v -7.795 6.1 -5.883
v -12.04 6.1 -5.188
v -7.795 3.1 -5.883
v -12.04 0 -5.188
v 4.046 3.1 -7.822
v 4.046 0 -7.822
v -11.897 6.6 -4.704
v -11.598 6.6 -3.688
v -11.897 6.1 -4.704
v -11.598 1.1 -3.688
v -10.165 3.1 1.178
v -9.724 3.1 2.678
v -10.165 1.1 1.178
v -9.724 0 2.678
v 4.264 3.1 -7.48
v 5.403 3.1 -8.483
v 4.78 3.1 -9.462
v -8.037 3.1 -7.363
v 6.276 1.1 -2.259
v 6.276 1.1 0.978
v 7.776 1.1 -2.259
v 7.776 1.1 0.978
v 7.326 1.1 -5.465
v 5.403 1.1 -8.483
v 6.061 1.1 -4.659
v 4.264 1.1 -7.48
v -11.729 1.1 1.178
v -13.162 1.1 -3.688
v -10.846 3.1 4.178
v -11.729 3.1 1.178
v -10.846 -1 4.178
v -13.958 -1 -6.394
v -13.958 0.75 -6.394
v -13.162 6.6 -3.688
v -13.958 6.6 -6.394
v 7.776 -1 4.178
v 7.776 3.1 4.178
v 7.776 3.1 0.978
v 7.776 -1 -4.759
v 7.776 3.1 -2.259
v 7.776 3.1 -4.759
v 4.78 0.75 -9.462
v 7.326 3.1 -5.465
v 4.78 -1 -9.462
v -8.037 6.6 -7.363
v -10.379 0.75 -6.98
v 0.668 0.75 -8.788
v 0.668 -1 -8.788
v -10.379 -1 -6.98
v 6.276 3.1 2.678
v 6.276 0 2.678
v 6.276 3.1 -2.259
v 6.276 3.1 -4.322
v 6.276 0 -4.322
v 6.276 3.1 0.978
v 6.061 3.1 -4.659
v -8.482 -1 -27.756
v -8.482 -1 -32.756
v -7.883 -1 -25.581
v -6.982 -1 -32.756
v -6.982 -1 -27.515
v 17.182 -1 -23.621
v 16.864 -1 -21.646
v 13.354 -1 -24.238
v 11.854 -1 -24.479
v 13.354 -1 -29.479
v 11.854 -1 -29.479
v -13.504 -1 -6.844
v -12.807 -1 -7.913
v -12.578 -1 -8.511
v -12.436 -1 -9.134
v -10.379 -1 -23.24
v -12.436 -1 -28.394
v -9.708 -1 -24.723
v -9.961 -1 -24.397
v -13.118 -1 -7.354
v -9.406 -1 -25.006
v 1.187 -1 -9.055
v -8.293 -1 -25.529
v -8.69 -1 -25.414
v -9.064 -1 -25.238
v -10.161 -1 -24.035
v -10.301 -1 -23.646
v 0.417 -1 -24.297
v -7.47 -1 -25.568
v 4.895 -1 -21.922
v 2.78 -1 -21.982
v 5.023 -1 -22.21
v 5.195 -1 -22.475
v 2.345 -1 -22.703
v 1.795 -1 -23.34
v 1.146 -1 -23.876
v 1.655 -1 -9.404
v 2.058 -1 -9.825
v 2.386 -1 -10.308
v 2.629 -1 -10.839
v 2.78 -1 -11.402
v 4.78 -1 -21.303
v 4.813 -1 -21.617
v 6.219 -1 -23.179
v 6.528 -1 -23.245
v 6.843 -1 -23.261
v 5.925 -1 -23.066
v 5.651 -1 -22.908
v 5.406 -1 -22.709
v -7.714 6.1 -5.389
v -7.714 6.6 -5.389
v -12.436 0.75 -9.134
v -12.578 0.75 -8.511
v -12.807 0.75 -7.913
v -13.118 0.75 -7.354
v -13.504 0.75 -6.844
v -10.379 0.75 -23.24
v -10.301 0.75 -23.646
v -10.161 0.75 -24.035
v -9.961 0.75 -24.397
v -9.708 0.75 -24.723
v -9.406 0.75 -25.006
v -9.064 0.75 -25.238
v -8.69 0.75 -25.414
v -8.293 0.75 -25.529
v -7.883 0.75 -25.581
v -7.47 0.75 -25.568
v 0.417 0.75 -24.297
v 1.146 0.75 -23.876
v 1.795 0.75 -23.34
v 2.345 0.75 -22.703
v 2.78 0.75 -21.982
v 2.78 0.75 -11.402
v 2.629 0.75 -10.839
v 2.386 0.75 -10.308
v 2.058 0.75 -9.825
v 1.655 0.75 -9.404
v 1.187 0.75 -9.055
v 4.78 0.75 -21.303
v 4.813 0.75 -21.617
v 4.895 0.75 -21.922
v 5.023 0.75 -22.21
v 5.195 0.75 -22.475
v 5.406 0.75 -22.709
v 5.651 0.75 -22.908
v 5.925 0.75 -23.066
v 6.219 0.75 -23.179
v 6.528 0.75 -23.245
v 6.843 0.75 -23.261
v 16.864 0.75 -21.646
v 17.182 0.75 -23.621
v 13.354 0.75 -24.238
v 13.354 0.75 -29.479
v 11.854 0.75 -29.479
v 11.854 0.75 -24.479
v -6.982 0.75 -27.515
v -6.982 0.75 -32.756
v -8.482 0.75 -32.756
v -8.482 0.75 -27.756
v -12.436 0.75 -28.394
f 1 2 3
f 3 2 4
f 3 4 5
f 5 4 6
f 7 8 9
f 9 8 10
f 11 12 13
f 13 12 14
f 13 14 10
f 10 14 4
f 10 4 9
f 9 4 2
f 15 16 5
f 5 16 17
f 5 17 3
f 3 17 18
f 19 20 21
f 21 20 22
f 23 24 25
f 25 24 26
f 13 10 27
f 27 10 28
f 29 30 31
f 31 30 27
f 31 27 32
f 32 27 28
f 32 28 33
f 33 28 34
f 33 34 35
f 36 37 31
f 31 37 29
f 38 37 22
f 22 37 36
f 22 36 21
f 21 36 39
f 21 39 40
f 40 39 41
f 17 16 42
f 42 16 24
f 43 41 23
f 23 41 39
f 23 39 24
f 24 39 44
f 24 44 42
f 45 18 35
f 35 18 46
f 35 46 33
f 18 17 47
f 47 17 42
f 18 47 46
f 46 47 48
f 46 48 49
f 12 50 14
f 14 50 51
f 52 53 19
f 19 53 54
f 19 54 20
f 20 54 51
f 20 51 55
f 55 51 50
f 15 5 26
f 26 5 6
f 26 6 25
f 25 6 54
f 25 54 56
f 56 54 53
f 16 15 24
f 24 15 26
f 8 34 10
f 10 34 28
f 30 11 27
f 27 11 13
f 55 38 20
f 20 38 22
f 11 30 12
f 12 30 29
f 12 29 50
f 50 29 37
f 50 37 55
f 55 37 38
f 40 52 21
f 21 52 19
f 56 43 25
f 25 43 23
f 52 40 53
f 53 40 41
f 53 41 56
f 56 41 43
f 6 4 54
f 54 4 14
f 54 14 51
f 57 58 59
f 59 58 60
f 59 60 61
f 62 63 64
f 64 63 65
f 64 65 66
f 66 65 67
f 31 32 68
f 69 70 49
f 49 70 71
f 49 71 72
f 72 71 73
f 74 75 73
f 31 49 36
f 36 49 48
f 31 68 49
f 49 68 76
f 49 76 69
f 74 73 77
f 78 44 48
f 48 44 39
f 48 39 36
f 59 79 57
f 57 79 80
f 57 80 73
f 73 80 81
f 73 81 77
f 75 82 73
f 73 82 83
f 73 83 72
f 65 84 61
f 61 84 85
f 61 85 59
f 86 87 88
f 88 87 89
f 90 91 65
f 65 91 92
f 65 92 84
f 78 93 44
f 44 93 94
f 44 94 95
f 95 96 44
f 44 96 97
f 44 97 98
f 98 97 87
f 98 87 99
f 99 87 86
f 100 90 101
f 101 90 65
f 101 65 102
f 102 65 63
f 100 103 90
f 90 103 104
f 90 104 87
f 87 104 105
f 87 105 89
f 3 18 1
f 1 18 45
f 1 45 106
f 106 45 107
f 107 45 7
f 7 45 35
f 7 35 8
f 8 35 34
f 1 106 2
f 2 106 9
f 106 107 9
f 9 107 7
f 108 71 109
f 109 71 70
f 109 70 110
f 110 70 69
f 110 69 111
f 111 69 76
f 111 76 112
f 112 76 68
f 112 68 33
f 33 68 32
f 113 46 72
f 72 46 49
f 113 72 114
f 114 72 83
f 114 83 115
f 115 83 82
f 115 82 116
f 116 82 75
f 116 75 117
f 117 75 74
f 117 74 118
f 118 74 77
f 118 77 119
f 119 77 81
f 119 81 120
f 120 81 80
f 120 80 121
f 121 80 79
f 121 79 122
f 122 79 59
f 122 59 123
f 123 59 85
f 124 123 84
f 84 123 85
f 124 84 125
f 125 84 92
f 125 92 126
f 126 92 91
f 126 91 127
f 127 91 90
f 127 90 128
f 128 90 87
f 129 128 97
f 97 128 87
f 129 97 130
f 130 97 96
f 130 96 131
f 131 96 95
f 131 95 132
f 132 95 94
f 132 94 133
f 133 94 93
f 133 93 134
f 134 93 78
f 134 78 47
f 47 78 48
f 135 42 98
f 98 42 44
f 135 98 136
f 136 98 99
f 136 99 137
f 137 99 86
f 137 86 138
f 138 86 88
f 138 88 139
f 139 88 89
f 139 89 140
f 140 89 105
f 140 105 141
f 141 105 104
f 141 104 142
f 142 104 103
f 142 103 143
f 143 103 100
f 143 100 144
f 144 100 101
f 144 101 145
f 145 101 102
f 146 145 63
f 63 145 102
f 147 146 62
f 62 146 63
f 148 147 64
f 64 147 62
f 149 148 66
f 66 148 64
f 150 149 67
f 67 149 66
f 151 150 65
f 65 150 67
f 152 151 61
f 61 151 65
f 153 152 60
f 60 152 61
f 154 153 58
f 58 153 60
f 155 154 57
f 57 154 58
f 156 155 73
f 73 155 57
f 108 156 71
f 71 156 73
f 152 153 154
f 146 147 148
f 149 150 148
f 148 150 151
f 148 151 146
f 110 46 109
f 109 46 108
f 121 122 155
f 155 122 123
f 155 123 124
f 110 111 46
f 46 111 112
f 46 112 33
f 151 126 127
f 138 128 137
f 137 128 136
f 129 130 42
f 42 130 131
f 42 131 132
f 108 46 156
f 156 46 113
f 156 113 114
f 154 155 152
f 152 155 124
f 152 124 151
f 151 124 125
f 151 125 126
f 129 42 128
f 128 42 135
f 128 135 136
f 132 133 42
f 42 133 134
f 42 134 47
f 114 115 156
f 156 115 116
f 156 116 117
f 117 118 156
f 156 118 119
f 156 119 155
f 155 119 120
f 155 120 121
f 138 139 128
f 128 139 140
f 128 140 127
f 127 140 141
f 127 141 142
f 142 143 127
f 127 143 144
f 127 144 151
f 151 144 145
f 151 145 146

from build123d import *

# Parameters (mm, degrees)
BOSS_EXTRUDE4_DEPTH  = 1.1
BOSS_EXTRUDE6_DEPTH  = 2
BOSS_EXTRUDE8_DEPTH  = 1
BOSS_EXTRUDE9_DEPTH  = 3.5
SKETCH13_W           = 4.301422626
SKETCH13_H           = 0.5
BOSS_EXTRUDE10_DEPTH = 0.5
BOSS_EXTRUDE11_DEPTH = 1.75


with BuildPart() as part:
    # Sketch1 → Boss-Extrude4 (new body)
    with BuildSketch(Plane(origin=(0, 0, 0), x_dir=(1, 0, 0), z_dir=(0, 1, 0))):
        Polygon((-13.958157374, 6.393603317), (4.779918737, 9.461645161), (7.776189987, 4.758788138), (7.776189987, -4.178449178), (-10.845876326, -4.178449178), align=None)
        Polygon((-12.039528162, 5.187772879), (-9.723810013, -2.678449178), (6.276189987, -2.678449178), (6.276189987, 4.321550822), (4.046279675, 7.821550822), align=None, mode=Mode.SUBTRACT)
    extrude(amount=BOSS_EXTRUDE4_DEPTH)

    # Sketch4 → Boss-Extrude6 (add)
    with BuildSketch(Plane(origin=(0, 1.1, 0), x_dir=(1, 0, 0), z_dir=(0, 1, 0))):
        Polygon((4.263894856, 7.479988594), (5.40328595, 8.483226777), (4.779918737, 9.461645161), (-13.958157374, 6.393603317), (-13.161594474, 3.687772879), (-11.597946778, 3.687772879), (-12.039528162, 5.187772879), (4.046279675, 7.821550822), align=None)
        Polygon((6.276189987, -0.978449178), (7.776189987, -0.978449178), (7.776189987, -4.178449178), (-10.845876326, -4.178449178), (-11.729039094, -1.178449178), (-10.165391397, -1.178449178), (-9.723810013, -2.678449178), (6.276189987, -2.678449178), align=None)
        Polygon((6.276189987, 2.258788138), (6.276189987, 4.321550822), (6.061258872, 4.658900219), (7.326319113, 5.464891898), (7.776189987, 4.758788138), (7.776189987, 2.258788138), align=None)
    extrude(amount=BOSS_EXTRUDE6_DEPTH)

    # Sketch8 → Boss-Extrude8 (add)
    with BuildSketch(Plane.XZ):
        Polygon((4.779918737, -9.461645161), (-13.958157374, -6.393603317), (-10.845876326, 4.178449178), (7.776189987, 4.178449178), (7.776189987, -4.758788138), align=None)
    extrude(amount=BOSS_EXTRUDE8_DEPTH)

    # Sketch12 → Boss-Extrude9 (add)
    with BuildSketch(Plane(origin=(0, 3.1, 0), x_dir=(1, 0, 0), z_dir=(0, 1, 0))):
        Polygon((-13.958157374, 6.393603317), (-8.037001115, 7.36309213), (-7.794628912, 5.882803065), (-12.039528162, 5.187772879), (-11.597946778, 3.687772879), (-13.161594474, 3.687772879), align=None)
    extrude(amount=BOSS_EXTRUDE9_DEPTH)

    # Sketch13 → Boss-Extrude10 (add)
    with BuildSketch(Plane(origin=(-1.141567738, 0, -6.972128883), x_dir=(0.9868593764655612, 0, -0.16158146886943345), z_dir=(0.16158146886943345, 0, 0.9868593764655612))):
        with Locations((-8.89236198, 6.35)):
            Rectangle(SKETCH13_W, SKETCH13_H)
    extrude(amount=BOSS_EXTRUDE10_DEPTH)

    # Sketch14 → Boss-Extrude11 (add)
    with BuildSketch(Plane.XZ.offset(1)):
        with BuildLine():
            Line((-12.435718696, -28.393603317), (-8.481738038, -27.756425594))
            Line((-8.481738038, -27.756425594), (-8.481738038, -32.756425594))
            Line((-8.481738038, -32.756425594), (-6.981738038, -32.756425594))
            Line((-6.981738038, -32.756425594), (-6.981738038, -27.514702969))
            Line((-6.981738038, -27.514702969), (11.853577786, -24.479421647))
            Line((11.853577786, -24.479421647), (11.853577786, -29.479421647))
            Line((11.853577786, -29.479421647), (13.353577786, -29.479421647))
            Line((13.353577786, -29.479421647), (13.353577786, -24.237699022))
            Line((13.353577786, -24.237699022), (17.18217535, -23.620726586))
            Line((17.18217535, -23.620726586), (16.863983568, -21.646200317))
            Line((16.863983568, -21.646200317), (6.843172004, -23.261038234))
            ThreePointArc((6.843172004, -23.261038234), (5.406002401, -22.709284639), (4.779918737, -21.302903559))
            Line((4.779918737, -21.302903559), (4.779918737, -9.461645161))
            Line((4.779918737, -9.461645161), (0.667895788, -8.788371214))
            ThreePointArc((0.667895788, -8.788371214), (2.057990663, -9.82529493), (2.779918737, -11.402125424))
            Line((2.779918737, -11.402125424), (2.779918737, -21.982368725))
            ThreePointArc((2.779918737, -21.982368725), (1.794986848, -23.340128824), (0.417030157, -24.296600818))
            Line((0.417030157, -24.296600818), (-7.469758325, -25.567544294))
            ThreePointArc((-7.469758325, -25.567544294), (-9.406227727, -25.006078343), (-10.378501991, -23.239771316))
            Line((-10.378501991, -23.239771316), (-10.378501991, -6.979711114))
            Line((-10.378501991, -6.979711114), (-13.958157374, -6.393603317))
            ThreePointArc((-13.958157374, -6.393603317), (-12.952521948, -7.628113726), (-12.435718696, -9.134179116))
            Line((-12.435718696, -9.134179116), (-12.435718696, -28.393603317))
        make_face()
    extrude(amount=-BOSS_EXTRUDE11_DEPTH)


solid = part.part
